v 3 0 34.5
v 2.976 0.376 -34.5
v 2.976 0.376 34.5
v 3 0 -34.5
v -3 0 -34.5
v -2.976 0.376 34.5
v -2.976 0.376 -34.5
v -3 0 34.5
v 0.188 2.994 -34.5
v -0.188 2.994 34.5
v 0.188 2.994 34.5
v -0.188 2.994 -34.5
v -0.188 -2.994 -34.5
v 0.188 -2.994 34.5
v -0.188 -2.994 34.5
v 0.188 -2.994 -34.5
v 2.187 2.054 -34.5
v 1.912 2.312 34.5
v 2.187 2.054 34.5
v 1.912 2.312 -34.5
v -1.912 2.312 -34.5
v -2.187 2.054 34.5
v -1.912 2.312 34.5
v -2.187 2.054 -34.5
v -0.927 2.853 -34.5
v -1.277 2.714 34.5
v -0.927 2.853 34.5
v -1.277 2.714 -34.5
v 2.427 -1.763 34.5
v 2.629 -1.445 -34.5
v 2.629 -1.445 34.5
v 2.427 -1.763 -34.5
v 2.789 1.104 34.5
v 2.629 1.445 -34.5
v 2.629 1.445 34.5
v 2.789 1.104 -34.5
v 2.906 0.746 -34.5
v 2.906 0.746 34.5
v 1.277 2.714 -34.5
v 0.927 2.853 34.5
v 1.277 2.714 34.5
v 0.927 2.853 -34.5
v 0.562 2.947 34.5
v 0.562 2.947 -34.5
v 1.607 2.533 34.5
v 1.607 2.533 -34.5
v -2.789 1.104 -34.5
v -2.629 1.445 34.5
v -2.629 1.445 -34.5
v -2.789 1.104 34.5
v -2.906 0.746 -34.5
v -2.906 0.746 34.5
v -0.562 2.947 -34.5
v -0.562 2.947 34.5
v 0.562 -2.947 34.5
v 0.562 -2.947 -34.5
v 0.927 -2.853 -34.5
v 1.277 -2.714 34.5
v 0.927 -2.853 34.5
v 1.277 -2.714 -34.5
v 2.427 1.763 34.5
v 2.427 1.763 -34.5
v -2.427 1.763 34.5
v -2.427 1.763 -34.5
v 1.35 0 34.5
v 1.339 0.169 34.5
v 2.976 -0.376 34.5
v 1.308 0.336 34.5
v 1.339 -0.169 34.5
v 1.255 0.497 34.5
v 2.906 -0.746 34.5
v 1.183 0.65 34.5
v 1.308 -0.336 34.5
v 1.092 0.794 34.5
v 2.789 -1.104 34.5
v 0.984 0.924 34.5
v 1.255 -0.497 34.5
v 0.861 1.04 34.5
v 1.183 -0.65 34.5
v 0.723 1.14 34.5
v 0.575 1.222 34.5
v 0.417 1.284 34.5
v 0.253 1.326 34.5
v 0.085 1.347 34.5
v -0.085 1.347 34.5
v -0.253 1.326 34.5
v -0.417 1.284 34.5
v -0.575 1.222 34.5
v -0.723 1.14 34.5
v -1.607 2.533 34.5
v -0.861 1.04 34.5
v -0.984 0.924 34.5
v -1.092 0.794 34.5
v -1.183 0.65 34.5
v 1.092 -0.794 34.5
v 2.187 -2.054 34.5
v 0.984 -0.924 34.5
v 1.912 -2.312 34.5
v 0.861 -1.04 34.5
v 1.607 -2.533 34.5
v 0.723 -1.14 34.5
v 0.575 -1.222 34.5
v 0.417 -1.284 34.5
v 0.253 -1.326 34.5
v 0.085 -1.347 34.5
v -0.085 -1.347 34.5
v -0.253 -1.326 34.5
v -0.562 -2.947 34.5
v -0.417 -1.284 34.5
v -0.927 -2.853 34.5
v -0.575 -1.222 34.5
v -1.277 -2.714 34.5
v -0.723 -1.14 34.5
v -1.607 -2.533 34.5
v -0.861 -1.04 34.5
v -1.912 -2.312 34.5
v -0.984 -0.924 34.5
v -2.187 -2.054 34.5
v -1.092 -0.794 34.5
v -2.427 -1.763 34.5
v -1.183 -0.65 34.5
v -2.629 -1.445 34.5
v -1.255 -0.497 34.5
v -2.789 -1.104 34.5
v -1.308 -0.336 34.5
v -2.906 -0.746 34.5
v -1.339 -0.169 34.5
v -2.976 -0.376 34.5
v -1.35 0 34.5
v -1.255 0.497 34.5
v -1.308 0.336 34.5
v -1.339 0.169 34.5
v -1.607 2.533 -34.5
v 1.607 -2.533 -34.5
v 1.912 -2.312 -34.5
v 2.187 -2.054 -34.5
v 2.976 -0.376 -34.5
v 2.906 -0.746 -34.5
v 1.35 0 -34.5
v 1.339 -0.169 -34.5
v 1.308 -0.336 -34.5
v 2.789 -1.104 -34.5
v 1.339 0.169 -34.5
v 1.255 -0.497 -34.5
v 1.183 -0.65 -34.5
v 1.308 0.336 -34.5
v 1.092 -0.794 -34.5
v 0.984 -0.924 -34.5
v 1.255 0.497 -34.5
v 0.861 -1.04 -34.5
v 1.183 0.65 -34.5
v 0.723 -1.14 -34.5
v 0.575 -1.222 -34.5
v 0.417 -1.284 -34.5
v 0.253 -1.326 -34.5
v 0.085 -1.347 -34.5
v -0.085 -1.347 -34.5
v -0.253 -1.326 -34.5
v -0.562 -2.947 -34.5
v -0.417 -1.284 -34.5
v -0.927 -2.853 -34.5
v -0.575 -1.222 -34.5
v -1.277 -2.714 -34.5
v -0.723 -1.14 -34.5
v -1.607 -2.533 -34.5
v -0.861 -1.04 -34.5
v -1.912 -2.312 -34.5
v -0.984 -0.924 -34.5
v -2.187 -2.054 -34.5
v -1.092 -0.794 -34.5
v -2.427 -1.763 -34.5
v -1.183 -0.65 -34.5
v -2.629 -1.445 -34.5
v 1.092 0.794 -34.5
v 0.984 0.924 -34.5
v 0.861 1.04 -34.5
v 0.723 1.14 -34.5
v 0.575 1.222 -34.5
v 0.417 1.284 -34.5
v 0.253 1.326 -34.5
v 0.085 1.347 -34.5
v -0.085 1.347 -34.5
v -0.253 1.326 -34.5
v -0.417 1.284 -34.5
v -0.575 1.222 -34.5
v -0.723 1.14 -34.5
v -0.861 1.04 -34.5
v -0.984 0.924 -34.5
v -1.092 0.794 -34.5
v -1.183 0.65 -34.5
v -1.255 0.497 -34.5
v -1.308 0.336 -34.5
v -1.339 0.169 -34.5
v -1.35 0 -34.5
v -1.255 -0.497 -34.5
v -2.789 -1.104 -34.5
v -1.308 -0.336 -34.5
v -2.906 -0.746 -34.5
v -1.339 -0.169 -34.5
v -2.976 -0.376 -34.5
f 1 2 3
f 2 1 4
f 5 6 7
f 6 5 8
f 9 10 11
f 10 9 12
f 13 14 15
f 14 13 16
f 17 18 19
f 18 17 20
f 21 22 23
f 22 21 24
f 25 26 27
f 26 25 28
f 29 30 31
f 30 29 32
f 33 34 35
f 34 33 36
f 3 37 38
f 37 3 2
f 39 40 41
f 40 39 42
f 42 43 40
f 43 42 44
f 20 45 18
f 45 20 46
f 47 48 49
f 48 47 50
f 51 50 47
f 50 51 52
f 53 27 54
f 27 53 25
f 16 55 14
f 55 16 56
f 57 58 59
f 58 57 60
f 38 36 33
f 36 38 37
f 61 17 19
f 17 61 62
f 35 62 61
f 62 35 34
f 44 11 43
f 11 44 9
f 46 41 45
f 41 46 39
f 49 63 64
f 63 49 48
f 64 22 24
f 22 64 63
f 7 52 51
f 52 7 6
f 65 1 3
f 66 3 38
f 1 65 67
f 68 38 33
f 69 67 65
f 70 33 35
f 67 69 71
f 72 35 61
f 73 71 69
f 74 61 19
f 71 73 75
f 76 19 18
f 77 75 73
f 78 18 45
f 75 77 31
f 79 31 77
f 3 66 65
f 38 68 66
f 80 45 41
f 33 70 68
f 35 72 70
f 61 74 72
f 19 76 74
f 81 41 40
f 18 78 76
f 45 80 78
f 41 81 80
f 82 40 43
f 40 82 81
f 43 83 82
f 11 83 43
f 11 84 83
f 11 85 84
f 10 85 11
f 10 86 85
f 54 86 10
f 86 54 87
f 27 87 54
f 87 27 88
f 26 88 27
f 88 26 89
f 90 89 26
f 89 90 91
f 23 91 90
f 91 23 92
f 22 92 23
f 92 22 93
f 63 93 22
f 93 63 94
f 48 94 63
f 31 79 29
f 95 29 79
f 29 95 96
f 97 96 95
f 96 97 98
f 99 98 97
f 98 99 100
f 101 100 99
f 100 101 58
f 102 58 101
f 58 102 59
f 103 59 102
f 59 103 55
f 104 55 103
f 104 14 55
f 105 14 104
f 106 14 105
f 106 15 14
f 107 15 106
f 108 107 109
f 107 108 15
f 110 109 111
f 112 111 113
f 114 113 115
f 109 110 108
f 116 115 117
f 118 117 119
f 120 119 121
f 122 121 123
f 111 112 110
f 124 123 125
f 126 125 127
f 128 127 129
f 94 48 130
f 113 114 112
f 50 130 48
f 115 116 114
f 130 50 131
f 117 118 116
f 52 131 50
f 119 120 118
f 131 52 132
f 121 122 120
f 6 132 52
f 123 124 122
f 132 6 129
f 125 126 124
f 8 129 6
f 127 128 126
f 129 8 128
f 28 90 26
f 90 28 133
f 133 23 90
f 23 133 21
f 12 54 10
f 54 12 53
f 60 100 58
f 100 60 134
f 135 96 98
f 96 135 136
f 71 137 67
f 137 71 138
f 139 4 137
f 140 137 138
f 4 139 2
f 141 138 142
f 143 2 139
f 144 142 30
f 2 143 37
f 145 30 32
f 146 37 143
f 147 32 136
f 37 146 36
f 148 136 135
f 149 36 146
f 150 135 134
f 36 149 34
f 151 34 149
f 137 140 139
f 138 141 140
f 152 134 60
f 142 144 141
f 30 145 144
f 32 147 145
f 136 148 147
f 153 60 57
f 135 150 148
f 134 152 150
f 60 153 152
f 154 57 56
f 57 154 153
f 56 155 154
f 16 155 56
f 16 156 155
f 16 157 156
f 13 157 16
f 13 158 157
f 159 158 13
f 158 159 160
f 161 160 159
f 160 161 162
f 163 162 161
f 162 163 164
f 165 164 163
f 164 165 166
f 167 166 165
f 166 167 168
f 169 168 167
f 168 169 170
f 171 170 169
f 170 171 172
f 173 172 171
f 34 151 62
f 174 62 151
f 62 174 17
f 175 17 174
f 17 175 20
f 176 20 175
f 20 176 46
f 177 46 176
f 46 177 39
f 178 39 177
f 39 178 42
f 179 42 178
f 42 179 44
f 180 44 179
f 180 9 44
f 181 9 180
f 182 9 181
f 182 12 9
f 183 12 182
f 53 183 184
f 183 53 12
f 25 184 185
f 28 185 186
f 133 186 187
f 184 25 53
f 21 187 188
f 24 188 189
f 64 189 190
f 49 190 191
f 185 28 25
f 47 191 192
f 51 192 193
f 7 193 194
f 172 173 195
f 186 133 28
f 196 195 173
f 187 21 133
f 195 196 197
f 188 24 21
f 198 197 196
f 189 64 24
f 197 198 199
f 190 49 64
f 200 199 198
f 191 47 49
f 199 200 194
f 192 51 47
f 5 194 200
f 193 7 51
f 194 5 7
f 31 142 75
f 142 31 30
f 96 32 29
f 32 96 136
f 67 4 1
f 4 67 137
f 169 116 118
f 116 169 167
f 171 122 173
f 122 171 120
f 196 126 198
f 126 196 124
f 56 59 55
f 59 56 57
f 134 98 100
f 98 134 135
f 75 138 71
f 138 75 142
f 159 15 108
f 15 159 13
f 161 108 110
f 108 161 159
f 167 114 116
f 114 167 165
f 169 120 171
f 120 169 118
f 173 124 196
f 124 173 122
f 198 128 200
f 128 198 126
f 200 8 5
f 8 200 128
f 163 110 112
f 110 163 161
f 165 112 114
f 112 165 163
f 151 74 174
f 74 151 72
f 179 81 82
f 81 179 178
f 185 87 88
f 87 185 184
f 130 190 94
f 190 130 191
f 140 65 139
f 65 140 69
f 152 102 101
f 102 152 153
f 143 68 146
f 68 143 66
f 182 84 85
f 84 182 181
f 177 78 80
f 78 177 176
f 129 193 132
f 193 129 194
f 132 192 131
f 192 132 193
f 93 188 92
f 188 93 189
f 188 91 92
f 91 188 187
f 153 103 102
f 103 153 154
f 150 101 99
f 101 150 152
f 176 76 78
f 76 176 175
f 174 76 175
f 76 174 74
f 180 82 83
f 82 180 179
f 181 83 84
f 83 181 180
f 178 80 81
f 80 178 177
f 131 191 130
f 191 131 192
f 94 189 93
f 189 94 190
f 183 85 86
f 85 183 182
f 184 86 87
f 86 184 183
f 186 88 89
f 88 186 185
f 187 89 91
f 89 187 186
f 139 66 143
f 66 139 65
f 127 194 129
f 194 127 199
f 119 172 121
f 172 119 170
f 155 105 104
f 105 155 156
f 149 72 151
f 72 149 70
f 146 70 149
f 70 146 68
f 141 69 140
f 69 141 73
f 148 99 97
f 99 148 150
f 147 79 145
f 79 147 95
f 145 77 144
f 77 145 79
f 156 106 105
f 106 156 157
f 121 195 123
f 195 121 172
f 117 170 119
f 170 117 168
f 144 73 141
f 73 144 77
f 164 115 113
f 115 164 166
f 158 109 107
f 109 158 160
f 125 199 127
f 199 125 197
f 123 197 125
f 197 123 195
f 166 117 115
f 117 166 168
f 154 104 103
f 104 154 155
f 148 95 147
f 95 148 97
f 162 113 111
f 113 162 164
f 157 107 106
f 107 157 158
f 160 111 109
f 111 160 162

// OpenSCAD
$fn = 50;


difference() {
	union() {
		translate(v = [0, 0, -34.5000000000]) {
			cylinder(h = 69, r = 3.0000000000);
		}
	}
	union() {
		translate(v = [0, 0, -100.0000000000]) {
			cylinder(h = 200, r = 1.3500000000);
		}
	}
}
